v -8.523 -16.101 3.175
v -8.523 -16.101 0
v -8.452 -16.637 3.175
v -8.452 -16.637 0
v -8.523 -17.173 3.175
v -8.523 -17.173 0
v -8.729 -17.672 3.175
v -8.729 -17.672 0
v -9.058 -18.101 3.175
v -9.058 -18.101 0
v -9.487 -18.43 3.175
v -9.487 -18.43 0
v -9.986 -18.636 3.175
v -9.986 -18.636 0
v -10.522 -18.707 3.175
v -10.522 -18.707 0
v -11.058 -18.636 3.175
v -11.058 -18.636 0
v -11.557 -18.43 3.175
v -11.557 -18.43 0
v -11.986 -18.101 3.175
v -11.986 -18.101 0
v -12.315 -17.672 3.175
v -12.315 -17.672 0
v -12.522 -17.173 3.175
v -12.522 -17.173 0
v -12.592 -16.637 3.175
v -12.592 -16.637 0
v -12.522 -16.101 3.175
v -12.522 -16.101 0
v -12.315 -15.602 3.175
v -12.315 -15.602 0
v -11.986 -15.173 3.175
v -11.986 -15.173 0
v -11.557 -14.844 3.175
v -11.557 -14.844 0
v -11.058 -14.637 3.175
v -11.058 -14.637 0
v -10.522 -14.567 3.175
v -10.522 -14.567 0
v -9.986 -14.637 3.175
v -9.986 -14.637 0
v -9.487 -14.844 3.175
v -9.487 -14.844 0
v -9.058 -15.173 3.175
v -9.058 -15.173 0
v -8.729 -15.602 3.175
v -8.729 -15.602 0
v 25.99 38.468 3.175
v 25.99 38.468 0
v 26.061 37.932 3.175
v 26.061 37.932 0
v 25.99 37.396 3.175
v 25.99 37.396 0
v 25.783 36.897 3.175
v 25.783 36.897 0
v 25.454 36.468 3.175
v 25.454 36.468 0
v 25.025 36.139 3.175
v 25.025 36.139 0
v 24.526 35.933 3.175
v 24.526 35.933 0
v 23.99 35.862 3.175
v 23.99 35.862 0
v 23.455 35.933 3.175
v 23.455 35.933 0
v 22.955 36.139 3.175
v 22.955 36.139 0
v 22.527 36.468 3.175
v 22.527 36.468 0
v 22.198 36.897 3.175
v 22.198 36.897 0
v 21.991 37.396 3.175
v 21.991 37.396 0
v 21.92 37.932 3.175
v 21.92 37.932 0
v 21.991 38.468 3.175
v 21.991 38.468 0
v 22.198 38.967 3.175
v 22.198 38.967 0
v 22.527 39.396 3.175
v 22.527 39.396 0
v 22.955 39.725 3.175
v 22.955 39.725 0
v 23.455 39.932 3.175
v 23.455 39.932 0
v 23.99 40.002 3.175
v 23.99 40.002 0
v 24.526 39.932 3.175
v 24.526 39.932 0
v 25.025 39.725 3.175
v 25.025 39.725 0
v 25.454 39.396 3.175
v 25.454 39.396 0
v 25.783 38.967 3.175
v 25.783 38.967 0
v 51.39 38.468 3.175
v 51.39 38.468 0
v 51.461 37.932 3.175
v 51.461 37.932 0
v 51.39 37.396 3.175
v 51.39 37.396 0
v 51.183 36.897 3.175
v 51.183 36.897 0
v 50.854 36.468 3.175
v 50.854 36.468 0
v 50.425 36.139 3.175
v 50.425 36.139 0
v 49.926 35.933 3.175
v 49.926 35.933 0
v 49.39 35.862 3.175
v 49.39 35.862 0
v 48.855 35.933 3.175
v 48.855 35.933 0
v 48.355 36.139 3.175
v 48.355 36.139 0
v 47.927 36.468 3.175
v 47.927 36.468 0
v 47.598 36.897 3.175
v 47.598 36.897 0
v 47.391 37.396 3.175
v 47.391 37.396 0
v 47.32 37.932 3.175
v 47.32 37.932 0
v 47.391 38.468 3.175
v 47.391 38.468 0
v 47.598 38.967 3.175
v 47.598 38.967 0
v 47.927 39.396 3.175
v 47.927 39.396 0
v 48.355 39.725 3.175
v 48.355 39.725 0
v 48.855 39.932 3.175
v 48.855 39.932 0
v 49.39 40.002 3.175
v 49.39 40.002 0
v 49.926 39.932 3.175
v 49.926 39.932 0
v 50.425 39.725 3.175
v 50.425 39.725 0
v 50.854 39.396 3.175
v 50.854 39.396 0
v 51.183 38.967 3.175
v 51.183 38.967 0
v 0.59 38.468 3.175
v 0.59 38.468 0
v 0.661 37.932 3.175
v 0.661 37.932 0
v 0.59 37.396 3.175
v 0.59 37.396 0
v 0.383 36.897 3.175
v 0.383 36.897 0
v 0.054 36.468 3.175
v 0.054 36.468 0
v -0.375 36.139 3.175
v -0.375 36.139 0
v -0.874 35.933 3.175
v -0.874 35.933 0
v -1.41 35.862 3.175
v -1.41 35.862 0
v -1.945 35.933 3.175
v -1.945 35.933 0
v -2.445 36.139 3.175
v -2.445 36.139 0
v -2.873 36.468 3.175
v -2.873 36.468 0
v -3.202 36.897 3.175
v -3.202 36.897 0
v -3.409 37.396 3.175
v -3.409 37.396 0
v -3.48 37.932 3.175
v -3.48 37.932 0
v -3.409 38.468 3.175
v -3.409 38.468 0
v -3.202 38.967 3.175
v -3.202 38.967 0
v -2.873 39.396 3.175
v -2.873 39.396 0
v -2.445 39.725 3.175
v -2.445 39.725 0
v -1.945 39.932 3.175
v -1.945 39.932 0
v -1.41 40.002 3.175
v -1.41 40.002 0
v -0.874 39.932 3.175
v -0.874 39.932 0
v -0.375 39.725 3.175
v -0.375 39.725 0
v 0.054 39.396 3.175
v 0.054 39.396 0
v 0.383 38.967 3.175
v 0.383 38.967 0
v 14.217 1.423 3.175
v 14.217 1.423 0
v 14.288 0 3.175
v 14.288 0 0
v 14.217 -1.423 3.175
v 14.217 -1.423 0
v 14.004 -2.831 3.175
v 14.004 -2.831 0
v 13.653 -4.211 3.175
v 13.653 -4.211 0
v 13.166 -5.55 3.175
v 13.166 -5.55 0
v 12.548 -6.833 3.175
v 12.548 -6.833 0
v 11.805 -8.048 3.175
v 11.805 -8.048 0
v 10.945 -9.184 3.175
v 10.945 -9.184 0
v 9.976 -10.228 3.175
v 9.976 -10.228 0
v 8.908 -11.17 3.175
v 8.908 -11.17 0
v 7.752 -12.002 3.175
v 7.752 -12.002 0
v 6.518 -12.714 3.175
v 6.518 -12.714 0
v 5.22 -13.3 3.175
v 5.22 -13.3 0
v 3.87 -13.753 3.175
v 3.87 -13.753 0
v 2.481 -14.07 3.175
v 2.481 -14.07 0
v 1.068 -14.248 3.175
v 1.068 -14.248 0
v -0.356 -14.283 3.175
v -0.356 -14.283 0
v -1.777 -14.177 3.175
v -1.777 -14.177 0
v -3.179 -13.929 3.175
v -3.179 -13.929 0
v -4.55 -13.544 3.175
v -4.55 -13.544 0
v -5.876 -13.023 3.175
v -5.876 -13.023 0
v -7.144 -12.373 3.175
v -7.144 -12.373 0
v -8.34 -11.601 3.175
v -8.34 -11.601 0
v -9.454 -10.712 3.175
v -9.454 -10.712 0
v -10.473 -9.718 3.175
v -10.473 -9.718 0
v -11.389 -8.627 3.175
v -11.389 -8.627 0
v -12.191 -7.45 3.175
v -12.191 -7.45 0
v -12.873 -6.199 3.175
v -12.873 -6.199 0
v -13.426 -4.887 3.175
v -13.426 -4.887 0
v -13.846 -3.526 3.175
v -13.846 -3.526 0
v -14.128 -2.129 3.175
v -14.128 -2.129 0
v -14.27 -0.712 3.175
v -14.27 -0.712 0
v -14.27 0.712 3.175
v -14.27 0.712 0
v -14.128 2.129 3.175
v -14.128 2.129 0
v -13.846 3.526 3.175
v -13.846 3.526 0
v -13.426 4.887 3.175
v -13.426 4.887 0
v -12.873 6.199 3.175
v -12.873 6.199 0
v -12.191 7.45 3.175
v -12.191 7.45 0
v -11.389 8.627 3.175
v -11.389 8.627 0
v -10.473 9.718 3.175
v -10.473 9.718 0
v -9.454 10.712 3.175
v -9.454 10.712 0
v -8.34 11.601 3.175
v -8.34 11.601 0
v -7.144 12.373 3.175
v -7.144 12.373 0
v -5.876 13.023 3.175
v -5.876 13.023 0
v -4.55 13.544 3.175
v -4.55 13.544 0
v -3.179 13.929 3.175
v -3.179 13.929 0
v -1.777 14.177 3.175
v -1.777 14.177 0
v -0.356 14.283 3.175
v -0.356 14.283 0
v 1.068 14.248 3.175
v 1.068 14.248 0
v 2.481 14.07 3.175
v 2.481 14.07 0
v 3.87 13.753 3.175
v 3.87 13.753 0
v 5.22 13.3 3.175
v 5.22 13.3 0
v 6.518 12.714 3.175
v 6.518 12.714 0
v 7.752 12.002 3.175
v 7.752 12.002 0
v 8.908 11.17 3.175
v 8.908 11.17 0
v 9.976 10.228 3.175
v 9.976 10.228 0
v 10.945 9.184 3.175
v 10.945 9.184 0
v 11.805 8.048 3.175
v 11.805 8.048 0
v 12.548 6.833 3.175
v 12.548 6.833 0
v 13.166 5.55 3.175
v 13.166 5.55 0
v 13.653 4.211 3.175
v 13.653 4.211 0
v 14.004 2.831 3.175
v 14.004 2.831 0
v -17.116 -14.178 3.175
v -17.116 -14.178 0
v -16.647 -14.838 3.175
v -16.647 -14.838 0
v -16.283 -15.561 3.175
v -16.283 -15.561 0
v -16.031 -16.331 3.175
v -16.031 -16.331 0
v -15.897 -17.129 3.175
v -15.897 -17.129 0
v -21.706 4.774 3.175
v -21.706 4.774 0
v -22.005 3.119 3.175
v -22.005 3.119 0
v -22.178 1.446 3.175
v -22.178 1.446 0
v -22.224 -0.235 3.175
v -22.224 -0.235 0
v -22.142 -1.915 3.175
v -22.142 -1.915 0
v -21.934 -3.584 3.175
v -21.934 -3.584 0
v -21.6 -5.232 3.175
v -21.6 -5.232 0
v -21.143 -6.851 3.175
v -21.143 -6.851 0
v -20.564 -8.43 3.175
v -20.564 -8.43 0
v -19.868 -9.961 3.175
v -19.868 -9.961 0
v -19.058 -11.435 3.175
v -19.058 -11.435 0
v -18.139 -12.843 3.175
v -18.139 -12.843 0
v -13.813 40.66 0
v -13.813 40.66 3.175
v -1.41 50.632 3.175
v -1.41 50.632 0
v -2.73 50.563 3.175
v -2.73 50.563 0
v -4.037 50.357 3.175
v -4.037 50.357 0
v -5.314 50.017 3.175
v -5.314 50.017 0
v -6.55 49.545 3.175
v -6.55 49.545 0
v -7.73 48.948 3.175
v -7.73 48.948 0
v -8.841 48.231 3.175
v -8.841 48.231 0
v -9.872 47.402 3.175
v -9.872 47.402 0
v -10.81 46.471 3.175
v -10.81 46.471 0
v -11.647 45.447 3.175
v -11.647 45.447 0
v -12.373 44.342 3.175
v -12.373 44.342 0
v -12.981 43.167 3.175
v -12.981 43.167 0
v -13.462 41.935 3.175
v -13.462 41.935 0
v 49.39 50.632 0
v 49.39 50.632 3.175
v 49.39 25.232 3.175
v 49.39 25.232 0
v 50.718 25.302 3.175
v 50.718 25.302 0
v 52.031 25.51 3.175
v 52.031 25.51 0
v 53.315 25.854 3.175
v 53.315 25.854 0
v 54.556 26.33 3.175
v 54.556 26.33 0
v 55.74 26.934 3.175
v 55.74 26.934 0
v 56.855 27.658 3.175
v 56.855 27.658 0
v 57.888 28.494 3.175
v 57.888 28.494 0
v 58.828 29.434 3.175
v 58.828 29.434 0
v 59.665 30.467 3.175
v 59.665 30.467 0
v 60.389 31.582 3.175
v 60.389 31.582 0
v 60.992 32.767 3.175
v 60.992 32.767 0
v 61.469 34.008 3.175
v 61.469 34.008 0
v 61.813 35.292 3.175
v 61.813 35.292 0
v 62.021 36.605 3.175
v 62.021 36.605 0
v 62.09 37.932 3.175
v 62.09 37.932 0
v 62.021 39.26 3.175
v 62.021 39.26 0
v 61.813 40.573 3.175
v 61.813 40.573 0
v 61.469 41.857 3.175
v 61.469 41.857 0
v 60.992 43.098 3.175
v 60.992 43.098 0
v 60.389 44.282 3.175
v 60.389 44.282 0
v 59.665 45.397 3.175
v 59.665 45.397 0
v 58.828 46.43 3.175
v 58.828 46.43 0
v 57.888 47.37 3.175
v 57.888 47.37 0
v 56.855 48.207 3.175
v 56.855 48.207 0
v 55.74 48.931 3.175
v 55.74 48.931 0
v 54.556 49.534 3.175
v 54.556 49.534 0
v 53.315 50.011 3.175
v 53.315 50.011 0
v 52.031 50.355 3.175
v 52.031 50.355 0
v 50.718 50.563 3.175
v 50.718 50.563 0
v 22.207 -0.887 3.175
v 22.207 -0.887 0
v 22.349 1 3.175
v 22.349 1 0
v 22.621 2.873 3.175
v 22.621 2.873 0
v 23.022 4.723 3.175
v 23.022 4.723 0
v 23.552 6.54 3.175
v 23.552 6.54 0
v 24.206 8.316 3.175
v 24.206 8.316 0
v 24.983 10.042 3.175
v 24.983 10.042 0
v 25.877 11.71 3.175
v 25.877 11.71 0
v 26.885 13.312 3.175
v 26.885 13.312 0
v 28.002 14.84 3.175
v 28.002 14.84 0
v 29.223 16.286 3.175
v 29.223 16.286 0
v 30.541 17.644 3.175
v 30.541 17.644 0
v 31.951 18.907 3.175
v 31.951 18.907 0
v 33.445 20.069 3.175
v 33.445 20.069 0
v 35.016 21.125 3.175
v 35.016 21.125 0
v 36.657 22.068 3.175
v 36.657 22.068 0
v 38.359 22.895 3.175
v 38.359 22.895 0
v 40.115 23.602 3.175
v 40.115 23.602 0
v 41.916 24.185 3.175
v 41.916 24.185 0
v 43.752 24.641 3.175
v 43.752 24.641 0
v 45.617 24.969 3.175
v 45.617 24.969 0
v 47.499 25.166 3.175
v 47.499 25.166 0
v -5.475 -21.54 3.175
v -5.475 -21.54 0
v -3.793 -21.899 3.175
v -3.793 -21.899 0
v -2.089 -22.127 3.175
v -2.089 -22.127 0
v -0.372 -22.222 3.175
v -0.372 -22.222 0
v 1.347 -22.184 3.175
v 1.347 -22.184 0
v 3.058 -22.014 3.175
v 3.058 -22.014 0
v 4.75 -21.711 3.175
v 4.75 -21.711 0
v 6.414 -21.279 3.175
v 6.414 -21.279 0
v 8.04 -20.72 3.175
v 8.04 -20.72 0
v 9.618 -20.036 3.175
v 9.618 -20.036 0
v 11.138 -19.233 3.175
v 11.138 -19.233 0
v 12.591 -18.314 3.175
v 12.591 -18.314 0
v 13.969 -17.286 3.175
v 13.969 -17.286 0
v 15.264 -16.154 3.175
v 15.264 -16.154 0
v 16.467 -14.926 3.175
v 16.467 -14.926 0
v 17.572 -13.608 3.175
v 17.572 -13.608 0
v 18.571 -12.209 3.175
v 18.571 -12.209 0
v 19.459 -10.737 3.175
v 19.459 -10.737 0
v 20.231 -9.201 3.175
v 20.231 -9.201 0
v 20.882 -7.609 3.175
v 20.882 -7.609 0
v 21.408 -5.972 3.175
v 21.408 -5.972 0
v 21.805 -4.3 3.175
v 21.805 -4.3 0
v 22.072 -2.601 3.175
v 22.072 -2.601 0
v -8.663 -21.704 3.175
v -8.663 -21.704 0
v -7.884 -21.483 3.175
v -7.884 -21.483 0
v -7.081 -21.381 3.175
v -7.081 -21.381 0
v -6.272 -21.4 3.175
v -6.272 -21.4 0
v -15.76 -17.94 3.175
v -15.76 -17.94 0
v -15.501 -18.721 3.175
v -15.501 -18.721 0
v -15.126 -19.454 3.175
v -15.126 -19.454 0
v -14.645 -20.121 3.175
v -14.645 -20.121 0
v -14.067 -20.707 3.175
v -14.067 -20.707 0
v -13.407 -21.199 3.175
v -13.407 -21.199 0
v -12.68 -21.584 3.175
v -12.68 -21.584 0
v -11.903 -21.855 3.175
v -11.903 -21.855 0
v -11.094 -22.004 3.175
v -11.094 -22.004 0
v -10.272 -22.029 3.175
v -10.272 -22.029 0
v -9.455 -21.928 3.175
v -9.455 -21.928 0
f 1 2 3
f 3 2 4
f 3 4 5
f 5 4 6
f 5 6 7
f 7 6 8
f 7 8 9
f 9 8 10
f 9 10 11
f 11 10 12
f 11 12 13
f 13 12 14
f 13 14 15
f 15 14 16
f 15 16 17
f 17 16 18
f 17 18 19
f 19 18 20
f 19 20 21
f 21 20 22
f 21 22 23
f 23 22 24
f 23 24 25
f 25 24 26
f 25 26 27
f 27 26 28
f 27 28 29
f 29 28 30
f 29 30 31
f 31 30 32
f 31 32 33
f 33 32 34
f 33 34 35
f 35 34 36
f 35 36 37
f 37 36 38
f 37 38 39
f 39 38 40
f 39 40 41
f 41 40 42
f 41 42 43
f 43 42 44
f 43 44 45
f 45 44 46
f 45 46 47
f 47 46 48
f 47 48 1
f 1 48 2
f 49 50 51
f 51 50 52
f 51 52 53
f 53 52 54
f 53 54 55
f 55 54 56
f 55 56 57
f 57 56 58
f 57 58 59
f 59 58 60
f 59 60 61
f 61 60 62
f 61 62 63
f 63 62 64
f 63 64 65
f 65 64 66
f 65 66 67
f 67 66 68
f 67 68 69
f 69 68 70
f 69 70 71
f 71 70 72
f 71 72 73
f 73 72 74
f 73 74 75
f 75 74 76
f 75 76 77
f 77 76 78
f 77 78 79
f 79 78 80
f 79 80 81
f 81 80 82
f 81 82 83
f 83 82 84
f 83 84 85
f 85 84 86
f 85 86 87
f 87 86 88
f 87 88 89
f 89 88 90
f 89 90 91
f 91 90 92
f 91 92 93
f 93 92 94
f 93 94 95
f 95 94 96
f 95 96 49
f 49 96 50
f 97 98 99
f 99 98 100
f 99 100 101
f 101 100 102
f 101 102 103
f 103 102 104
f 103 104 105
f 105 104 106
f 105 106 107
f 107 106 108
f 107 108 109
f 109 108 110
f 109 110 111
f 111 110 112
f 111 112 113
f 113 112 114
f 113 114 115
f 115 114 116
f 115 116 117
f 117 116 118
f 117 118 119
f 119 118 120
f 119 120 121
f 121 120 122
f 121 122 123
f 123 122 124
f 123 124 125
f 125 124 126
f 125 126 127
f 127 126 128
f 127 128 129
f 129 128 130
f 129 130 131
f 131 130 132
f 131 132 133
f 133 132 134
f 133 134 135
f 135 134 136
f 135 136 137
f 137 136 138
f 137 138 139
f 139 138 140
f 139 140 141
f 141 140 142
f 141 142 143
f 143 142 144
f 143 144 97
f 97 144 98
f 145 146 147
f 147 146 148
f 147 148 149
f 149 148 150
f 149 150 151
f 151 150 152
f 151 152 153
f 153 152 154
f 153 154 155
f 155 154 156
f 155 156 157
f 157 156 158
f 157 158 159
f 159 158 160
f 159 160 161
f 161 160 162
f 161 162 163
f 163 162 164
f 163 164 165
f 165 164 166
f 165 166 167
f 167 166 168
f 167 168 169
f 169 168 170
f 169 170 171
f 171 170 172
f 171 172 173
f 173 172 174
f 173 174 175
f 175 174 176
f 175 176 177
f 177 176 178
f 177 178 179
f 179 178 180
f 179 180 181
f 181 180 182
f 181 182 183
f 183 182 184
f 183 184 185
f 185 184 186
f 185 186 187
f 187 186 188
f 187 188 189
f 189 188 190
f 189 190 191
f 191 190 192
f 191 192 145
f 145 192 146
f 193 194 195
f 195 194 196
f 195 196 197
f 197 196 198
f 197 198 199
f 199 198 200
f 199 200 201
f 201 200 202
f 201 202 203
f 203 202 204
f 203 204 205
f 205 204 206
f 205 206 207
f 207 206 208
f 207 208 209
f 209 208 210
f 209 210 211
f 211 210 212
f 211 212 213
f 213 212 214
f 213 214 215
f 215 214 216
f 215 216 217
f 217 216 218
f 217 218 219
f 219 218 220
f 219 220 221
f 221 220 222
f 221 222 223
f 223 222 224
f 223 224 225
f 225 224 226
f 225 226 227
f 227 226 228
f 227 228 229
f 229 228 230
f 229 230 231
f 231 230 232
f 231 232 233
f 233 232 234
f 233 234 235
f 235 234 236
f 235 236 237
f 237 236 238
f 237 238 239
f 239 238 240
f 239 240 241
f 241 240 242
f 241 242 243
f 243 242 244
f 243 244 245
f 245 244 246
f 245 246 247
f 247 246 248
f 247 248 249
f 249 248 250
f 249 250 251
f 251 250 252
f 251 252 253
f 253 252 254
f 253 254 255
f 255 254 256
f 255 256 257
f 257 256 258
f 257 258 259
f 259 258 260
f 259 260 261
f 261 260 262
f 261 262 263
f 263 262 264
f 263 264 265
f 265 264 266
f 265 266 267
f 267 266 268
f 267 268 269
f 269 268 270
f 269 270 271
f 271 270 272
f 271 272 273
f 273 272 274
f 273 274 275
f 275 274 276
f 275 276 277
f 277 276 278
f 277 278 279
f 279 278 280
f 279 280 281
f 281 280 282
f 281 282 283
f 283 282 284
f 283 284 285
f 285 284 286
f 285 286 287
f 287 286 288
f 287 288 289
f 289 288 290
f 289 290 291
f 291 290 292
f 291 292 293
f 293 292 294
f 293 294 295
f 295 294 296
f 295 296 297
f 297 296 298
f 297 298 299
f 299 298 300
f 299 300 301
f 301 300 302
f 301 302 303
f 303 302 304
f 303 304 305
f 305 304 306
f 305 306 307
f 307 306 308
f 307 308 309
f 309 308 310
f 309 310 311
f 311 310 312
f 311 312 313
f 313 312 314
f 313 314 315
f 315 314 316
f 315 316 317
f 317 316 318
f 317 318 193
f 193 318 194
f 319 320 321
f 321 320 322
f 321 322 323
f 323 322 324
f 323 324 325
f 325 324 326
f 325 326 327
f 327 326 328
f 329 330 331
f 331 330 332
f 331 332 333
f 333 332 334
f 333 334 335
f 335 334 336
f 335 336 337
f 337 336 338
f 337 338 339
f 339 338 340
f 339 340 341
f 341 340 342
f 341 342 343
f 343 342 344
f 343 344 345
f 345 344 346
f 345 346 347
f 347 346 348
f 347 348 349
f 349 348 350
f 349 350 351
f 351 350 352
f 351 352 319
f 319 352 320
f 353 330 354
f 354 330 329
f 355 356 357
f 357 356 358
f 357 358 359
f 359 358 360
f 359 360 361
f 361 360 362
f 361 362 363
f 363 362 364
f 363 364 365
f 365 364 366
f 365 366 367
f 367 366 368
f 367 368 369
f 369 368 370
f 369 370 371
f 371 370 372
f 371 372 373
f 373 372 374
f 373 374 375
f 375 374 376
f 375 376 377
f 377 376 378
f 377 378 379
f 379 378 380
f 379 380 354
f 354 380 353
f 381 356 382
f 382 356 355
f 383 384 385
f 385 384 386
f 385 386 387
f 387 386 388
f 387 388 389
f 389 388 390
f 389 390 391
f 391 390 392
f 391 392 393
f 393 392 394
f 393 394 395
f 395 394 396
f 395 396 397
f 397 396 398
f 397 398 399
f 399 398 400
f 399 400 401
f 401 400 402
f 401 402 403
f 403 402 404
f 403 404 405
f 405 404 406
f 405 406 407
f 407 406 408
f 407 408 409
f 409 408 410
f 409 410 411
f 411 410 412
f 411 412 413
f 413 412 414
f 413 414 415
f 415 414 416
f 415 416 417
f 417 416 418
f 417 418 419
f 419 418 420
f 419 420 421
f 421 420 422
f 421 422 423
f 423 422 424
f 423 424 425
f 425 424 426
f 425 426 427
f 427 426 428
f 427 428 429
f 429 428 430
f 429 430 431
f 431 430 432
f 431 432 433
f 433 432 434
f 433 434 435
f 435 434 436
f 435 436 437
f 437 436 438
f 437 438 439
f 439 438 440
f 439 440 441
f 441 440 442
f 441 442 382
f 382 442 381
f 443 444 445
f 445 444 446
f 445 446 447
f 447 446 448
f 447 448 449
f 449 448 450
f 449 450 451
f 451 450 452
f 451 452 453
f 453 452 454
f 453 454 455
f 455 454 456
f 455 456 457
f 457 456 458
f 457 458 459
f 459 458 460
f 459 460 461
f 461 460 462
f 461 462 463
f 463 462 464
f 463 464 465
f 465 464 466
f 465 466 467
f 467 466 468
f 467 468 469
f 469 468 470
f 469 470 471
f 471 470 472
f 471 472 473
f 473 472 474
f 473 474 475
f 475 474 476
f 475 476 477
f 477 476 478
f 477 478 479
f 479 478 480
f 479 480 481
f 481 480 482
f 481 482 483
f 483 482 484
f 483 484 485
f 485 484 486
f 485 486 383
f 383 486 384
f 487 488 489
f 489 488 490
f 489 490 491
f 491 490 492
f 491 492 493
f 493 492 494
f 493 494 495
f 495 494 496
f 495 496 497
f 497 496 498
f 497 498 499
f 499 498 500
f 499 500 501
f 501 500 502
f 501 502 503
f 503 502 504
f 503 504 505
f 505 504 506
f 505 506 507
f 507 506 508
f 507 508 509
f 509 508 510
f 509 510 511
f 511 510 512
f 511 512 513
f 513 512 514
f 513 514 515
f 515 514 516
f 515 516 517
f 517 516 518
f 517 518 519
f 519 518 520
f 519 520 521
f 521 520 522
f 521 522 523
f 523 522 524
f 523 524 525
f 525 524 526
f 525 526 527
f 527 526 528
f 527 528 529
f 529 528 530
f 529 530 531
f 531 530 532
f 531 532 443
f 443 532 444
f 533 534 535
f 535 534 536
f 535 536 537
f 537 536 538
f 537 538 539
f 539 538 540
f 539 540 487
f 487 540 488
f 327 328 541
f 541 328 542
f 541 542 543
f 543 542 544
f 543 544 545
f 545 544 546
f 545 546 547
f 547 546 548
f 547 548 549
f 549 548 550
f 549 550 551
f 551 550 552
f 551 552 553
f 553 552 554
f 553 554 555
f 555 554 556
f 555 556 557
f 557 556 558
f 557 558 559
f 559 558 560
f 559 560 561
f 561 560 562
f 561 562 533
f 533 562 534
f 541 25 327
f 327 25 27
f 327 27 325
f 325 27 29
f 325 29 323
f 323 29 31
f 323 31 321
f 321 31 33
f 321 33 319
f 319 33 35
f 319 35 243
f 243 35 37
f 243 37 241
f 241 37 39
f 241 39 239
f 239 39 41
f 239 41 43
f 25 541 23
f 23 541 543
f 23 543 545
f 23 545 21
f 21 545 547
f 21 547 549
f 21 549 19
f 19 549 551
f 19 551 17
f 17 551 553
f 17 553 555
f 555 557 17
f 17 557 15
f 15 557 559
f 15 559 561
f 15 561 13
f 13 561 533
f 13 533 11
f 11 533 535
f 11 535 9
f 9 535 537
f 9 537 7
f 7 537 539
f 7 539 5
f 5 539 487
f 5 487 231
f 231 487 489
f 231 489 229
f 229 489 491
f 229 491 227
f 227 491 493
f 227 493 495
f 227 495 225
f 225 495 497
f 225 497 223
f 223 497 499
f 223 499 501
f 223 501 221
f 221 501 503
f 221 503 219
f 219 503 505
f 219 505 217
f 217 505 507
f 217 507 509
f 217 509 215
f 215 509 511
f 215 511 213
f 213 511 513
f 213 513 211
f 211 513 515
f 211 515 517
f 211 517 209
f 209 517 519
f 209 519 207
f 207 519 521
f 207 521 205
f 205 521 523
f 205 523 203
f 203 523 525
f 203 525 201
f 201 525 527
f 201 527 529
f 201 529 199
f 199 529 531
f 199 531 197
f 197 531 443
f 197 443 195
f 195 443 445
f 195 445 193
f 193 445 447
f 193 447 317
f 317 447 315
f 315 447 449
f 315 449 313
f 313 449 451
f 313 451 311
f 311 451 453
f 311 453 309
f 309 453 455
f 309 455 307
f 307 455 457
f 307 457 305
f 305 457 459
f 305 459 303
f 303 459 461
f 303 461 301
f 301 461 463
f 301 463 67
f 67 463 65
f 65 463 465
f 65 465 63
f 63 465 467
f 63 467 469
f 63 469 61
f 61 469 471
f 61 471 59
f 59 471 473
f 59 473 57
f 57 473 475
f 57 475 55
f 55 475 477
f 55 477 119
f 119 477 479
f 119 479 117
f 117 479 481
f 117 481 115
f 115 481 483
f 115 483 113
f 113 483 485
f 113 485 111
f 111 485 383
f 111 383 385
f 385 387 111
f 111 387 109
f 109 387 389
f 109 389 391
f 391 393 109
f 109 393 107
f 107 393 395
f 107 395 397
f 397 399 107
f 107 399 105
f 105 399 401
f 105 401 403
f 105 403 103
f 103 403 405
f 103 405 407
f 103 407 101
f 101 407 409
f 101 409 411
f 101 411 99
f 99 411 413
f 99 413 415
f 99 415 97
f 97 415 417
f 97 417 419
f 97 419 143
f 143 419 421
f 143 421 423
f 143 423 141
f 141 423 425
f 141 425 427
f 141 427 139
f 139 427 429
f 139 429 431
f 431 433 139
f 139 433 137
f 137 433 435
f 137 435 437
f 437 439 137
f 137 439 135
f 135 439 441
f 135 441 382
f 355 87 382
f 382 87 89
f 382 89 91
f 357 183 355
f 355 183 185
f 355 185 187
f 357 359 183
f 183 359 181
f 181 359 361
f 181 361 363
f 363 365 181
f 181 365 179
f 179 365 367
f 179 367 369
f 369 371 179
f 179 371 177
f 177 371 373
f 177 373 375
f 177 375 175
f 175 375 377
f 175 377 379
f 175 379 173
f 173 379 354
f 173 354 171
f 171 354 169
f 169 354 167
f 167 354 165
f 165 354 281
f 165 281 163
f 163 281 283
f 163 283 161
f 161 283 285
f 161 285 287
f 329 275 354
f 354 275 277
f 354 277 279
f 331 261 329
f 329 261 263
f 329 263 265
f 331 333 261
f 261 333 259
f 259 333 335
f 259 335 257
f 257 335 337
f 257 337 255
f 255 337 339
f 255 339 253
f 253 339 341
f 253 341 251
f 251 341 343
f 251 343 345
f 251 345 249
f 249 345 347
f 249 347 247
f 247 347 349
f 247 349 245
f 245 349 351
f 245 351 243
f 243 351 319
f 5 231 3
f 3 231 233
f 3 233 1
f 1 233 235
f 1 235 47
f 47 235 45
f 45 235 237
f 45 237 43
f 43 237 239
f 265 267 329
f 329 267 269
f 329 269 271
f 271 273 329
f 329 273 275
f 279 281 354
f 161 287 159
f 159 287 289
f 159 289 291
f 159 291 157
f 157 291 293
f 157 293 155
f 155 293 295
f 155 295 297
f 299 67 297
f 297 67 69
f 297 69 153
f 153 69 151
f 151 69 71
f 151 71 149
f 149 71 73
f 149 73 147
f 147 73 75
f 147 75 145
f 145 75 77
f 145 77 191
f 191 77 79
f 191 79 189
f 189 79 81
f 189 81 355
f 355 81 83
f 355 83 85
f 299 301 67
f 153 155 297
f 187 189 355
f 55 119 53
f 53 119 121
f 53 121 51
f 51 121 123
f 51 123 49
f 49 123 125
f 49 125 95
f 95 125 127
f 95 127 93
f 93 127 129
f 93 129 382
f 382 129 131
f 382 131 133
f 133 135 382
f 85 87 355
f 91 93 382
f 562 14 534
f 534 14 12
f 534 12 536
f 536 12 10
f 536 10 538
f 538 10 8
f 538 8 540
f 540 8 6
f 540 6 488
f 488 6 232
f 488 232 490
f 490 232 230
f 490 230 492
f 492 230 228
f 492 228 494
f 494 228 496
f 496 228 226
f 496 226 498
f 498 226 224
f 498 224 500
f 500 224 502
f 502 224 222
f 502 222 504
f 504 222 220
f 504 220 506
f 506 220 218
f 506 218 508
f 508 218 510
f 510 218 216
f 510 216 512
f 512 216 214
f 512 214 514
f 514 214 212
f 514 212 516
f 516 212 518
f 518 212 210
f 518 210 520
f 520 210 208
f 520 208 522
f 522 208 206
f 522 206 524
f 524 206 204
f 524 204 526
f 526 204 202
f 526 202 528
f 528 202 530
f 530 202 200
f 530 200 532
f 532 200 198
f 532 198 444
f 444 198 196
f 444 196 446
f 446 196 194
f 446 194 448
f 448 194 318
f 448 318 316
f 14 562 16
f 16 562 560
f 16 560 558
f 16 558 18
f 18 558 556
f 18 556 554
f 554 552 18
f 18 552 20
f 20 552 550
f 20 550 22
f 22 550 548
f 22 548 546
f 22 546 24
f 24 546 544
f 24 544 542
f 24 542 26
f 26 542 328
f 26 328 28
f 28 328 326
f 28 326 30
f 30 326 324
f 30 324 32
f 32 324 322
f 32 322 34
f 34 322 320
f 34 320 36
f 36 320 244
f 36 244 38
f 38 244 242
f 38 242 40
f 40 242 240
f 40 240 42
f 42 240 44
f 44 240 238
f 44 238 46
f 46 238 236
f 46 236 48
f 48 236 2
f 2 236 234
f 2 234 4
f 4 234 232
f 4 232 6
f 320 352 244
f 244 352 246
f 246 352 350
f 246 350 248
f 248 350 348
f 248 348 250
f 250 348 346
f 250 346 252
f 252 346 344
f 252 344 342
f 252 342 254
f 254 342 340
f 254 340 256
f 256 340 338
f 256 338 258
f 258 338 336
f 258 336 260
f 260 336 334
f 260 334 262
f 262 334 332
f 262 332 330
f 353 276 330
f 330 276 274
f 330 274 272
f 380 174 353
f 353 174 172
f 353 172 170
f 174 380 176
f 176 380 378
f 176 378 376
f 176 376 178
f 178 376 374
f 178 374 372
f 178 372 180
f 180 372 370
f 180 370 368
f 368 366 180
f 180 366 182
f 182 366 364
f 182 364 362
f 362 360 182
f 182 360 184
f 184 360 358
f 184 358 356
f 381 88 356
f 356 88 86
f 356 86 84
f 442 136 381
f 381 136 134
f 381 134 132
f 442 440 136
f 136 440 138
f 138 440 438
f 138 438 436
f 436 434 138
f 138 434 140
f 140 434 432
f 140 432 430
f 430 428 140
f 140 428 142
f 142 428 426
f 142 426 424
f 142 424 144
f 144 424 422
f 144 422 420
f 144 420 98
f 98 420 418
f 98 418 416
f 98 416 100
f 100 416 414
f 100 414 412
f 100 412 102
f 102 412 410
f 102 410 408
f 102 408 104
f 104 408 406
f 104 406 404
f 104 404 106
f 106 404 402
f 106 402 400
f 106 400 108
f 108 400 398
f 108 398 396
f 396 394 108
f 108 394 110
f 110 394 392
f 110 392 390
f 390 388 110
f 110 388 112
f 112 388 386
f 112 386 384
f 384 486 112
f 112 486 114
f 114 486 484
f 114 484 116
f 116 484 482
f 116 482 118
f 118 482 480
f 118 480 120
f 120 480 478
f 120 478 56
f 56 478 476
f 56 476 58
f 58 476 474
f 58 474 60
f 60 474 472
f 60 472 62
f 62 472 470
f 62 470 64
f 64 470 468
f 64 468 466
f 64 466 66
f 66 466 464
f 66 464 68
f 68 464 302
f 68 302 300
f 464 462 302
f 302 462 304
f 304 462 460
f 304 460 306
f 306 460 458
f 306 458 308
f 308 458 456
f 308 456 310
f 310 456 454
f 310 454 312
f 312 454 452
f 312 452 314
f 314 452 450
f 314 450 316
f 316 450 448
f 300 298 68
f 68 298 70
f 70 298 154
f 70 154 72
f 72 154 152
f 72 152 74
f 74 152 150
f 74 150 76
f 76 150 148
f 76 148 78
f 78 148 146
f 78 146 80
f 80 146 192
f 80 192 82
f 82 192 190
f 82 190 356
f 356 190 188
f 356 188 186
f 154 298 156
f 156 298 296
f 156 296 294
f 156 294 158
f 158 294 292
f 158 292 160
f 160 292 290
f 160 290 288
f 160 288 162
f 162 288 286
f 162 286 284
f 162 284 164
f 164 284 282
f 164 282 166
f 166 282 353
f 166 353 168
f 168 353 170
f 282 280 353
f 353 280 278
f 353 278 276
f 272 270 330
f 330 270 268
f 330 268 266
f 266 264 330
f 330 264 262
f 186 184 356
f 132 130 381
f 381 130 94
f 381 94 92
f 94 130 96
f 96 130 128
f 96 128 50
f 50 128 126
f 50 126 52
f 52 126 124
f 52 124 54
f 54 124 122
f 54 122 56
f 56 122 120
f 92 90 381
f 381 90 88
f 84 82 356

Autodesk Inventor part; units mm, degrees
ref_plane "YZ Plane" through (0, 0, 0) normal (1, 0, 0) x (0, 1, 0)
ref_plane "XZ Plane" through (0, 0, 0) normal (0, 1, 0) x (-1, 0, 0)
ref_plane "XY Plane" through (0, 0, 0) normal (0, 0, 1) x (1, 0, 0)
sketch "Sketch1" plane through (0, 0, 0) normal (0, 0, 1) x (1, 0, 0)
  circle A0 centre (0, 0) radius 14.2875
  circle A1 centre (-1.4096, 37.9321) radius 2.0701
  circle A2 centre (23.9904, 37.9321) radius 2.0701
  circle A3 centre (49.3904, 37.9321) radius 2.0701
  line L0 (-1.4096, 37.9321) -> (49.3904, 37.9321) construction
  circle A4 centre (0, 0) radius 22.225
  line L1 (-1.4096, 37.9321) -> (49.3904, 37.9321) construction
  line L2 (-1.4096, 25.2321) -> (49.3904, 25.2321) construction
  line L3 (49.3904, 50.6321) -> (-1.4096, 50.6321)
  arc A5 (-1.4096, 50.6321) -> (-1.4096, 25.2321) centre (-1.4096, 37.9321) ccw
  arc A6 (49.3904, 25.2321) -> (49.3904, 50.6321) centre (49.3904, 37.9321) ccw
  line L4 (-21.7062, 4.7742) -> (-13.8131, 40.6603)
  arc A7 (49.3904, 25.2321) -> (22.2073, -0.887) centre (49.3904, -1.9727) ccw
  line L5 (-10.67, -20.3) -> (-13.7684, -18.3404) construction
  line L6 (-13.7684, -18.3404) -> (-13.6206, -14.6772) construction
  line L7 (-13.6206, -14.6772) -> (-10.3742, -12.9737) construction
  line L8 (-10.3742, -12.9737) -> (-7.2757, -14.9333) construction
  line L9 (-7.2757, -14.9333) -> (-7.4236, -18.5965) construction
  line L10 (-7.4236, -18.5965) -> (-10.67, -20.3) construction
  circle A8 centre (0, 0) radius 16.51 construction
  circle A9 centre (-10.5221, -16.6369) radius 2.0701
  line L11 (-10.5221, -16.6369) -> (0, 0) construction
  circle A10 centre (-10.5221, -16.6369) radius 5.3975
  arc A11 (-15.8971, -17.1289) -> (-17.1155, -14.1778) centre (-21.2721, -17.621) ccw
  arc A12 (-5.4746, -21.5402) -> (-8.6631, -21.7041) centre (-6.8041, -26.7714) ccw
  circle A13 centre (-10.5221, -16.6369) radius 4.0005 construction
  point P0 (23.9904, 37.9321)
  point P1 (-12.2192, -19.3202)
  dimension "d0" = 25.4
  dimension "d2" = 62.2757
  dimension "d3" = 37.9583
  dimension "d4" = 4.1402
  dimension "d5" = 28.575
  dimension "d6" = 44.45
  dimension "d7" = 25.4
  dimension "d10" = 6.35
  dimension "d11" = 33.02
  dimension "d12" = 8.001
extrude "Extrusion1" add sketch "Sketch1" along normal blind 3.175
sketch "Sketch2" plane through (0, 0, 3.175) normal (0, 0, 1) x (1, 0, 0)
  arc A0 (-15.8971, -17.1289) -> (-8.6631, -21.7041) centre (-10.5221, -16.6369) ccw projected
  arc A1 (-5.4746, -21.5402) -> (-8.6631, -21.7041) centre (-6.8041, -26.7714) ccw projected
  arc A2 (-5.4746, -21.5402) -> (22.2073, -0.887) centre (0, 0) ccw projected
  arc A3 (49.3904, 25.2321) -> (22.2073, -0.887) centre (49.3904, -1.9727) ccw projected
  arc A4 (49.3904, 25.2321) -> (49.3904, 50.6321) centre (49.3904, 37.9321) ccw projected
  line L0 (49.3904, 50.6321) -> (-1.4096, 50.6321) projected
  arc A5 (-1.4096, 50.6321) -> (-13.8131, 40.6603) centre (-1.4096, 37.9321) ccw projected
  line L1 (-13.8131, 40.6603) -> (-21.7062, 4.7742) projected
  arc A6 (-21.7062, 4.7742) -> (-17.1155, -14.1778) centre (0, 0) ccw projected
  arc A7 (-15.8971, -17.1289) -> (-17.1155, -14.1778) centre (-21.2721, -17.621) ccw projected
  circle A8 centre (0, 0) radius 14.2875 projected
  circle A9 centre (-1.4096, 37.9321) radius 2.0701 projected
  circle A10 centre (49.3904, 37.9321) radius 2.0701 projected
  circle A11 centre (23.9904, 37.9321) radius 2.0701 projected
  circle A12 centre (-10.5221, -16.6369) radius 2.0701 projected
properties part number "Intake Joint Holder Using 1__16 Gray Tinted Polycarbonate Sheet (36 x 72) (217-6627)" material "Polycarbonate, Clear"
